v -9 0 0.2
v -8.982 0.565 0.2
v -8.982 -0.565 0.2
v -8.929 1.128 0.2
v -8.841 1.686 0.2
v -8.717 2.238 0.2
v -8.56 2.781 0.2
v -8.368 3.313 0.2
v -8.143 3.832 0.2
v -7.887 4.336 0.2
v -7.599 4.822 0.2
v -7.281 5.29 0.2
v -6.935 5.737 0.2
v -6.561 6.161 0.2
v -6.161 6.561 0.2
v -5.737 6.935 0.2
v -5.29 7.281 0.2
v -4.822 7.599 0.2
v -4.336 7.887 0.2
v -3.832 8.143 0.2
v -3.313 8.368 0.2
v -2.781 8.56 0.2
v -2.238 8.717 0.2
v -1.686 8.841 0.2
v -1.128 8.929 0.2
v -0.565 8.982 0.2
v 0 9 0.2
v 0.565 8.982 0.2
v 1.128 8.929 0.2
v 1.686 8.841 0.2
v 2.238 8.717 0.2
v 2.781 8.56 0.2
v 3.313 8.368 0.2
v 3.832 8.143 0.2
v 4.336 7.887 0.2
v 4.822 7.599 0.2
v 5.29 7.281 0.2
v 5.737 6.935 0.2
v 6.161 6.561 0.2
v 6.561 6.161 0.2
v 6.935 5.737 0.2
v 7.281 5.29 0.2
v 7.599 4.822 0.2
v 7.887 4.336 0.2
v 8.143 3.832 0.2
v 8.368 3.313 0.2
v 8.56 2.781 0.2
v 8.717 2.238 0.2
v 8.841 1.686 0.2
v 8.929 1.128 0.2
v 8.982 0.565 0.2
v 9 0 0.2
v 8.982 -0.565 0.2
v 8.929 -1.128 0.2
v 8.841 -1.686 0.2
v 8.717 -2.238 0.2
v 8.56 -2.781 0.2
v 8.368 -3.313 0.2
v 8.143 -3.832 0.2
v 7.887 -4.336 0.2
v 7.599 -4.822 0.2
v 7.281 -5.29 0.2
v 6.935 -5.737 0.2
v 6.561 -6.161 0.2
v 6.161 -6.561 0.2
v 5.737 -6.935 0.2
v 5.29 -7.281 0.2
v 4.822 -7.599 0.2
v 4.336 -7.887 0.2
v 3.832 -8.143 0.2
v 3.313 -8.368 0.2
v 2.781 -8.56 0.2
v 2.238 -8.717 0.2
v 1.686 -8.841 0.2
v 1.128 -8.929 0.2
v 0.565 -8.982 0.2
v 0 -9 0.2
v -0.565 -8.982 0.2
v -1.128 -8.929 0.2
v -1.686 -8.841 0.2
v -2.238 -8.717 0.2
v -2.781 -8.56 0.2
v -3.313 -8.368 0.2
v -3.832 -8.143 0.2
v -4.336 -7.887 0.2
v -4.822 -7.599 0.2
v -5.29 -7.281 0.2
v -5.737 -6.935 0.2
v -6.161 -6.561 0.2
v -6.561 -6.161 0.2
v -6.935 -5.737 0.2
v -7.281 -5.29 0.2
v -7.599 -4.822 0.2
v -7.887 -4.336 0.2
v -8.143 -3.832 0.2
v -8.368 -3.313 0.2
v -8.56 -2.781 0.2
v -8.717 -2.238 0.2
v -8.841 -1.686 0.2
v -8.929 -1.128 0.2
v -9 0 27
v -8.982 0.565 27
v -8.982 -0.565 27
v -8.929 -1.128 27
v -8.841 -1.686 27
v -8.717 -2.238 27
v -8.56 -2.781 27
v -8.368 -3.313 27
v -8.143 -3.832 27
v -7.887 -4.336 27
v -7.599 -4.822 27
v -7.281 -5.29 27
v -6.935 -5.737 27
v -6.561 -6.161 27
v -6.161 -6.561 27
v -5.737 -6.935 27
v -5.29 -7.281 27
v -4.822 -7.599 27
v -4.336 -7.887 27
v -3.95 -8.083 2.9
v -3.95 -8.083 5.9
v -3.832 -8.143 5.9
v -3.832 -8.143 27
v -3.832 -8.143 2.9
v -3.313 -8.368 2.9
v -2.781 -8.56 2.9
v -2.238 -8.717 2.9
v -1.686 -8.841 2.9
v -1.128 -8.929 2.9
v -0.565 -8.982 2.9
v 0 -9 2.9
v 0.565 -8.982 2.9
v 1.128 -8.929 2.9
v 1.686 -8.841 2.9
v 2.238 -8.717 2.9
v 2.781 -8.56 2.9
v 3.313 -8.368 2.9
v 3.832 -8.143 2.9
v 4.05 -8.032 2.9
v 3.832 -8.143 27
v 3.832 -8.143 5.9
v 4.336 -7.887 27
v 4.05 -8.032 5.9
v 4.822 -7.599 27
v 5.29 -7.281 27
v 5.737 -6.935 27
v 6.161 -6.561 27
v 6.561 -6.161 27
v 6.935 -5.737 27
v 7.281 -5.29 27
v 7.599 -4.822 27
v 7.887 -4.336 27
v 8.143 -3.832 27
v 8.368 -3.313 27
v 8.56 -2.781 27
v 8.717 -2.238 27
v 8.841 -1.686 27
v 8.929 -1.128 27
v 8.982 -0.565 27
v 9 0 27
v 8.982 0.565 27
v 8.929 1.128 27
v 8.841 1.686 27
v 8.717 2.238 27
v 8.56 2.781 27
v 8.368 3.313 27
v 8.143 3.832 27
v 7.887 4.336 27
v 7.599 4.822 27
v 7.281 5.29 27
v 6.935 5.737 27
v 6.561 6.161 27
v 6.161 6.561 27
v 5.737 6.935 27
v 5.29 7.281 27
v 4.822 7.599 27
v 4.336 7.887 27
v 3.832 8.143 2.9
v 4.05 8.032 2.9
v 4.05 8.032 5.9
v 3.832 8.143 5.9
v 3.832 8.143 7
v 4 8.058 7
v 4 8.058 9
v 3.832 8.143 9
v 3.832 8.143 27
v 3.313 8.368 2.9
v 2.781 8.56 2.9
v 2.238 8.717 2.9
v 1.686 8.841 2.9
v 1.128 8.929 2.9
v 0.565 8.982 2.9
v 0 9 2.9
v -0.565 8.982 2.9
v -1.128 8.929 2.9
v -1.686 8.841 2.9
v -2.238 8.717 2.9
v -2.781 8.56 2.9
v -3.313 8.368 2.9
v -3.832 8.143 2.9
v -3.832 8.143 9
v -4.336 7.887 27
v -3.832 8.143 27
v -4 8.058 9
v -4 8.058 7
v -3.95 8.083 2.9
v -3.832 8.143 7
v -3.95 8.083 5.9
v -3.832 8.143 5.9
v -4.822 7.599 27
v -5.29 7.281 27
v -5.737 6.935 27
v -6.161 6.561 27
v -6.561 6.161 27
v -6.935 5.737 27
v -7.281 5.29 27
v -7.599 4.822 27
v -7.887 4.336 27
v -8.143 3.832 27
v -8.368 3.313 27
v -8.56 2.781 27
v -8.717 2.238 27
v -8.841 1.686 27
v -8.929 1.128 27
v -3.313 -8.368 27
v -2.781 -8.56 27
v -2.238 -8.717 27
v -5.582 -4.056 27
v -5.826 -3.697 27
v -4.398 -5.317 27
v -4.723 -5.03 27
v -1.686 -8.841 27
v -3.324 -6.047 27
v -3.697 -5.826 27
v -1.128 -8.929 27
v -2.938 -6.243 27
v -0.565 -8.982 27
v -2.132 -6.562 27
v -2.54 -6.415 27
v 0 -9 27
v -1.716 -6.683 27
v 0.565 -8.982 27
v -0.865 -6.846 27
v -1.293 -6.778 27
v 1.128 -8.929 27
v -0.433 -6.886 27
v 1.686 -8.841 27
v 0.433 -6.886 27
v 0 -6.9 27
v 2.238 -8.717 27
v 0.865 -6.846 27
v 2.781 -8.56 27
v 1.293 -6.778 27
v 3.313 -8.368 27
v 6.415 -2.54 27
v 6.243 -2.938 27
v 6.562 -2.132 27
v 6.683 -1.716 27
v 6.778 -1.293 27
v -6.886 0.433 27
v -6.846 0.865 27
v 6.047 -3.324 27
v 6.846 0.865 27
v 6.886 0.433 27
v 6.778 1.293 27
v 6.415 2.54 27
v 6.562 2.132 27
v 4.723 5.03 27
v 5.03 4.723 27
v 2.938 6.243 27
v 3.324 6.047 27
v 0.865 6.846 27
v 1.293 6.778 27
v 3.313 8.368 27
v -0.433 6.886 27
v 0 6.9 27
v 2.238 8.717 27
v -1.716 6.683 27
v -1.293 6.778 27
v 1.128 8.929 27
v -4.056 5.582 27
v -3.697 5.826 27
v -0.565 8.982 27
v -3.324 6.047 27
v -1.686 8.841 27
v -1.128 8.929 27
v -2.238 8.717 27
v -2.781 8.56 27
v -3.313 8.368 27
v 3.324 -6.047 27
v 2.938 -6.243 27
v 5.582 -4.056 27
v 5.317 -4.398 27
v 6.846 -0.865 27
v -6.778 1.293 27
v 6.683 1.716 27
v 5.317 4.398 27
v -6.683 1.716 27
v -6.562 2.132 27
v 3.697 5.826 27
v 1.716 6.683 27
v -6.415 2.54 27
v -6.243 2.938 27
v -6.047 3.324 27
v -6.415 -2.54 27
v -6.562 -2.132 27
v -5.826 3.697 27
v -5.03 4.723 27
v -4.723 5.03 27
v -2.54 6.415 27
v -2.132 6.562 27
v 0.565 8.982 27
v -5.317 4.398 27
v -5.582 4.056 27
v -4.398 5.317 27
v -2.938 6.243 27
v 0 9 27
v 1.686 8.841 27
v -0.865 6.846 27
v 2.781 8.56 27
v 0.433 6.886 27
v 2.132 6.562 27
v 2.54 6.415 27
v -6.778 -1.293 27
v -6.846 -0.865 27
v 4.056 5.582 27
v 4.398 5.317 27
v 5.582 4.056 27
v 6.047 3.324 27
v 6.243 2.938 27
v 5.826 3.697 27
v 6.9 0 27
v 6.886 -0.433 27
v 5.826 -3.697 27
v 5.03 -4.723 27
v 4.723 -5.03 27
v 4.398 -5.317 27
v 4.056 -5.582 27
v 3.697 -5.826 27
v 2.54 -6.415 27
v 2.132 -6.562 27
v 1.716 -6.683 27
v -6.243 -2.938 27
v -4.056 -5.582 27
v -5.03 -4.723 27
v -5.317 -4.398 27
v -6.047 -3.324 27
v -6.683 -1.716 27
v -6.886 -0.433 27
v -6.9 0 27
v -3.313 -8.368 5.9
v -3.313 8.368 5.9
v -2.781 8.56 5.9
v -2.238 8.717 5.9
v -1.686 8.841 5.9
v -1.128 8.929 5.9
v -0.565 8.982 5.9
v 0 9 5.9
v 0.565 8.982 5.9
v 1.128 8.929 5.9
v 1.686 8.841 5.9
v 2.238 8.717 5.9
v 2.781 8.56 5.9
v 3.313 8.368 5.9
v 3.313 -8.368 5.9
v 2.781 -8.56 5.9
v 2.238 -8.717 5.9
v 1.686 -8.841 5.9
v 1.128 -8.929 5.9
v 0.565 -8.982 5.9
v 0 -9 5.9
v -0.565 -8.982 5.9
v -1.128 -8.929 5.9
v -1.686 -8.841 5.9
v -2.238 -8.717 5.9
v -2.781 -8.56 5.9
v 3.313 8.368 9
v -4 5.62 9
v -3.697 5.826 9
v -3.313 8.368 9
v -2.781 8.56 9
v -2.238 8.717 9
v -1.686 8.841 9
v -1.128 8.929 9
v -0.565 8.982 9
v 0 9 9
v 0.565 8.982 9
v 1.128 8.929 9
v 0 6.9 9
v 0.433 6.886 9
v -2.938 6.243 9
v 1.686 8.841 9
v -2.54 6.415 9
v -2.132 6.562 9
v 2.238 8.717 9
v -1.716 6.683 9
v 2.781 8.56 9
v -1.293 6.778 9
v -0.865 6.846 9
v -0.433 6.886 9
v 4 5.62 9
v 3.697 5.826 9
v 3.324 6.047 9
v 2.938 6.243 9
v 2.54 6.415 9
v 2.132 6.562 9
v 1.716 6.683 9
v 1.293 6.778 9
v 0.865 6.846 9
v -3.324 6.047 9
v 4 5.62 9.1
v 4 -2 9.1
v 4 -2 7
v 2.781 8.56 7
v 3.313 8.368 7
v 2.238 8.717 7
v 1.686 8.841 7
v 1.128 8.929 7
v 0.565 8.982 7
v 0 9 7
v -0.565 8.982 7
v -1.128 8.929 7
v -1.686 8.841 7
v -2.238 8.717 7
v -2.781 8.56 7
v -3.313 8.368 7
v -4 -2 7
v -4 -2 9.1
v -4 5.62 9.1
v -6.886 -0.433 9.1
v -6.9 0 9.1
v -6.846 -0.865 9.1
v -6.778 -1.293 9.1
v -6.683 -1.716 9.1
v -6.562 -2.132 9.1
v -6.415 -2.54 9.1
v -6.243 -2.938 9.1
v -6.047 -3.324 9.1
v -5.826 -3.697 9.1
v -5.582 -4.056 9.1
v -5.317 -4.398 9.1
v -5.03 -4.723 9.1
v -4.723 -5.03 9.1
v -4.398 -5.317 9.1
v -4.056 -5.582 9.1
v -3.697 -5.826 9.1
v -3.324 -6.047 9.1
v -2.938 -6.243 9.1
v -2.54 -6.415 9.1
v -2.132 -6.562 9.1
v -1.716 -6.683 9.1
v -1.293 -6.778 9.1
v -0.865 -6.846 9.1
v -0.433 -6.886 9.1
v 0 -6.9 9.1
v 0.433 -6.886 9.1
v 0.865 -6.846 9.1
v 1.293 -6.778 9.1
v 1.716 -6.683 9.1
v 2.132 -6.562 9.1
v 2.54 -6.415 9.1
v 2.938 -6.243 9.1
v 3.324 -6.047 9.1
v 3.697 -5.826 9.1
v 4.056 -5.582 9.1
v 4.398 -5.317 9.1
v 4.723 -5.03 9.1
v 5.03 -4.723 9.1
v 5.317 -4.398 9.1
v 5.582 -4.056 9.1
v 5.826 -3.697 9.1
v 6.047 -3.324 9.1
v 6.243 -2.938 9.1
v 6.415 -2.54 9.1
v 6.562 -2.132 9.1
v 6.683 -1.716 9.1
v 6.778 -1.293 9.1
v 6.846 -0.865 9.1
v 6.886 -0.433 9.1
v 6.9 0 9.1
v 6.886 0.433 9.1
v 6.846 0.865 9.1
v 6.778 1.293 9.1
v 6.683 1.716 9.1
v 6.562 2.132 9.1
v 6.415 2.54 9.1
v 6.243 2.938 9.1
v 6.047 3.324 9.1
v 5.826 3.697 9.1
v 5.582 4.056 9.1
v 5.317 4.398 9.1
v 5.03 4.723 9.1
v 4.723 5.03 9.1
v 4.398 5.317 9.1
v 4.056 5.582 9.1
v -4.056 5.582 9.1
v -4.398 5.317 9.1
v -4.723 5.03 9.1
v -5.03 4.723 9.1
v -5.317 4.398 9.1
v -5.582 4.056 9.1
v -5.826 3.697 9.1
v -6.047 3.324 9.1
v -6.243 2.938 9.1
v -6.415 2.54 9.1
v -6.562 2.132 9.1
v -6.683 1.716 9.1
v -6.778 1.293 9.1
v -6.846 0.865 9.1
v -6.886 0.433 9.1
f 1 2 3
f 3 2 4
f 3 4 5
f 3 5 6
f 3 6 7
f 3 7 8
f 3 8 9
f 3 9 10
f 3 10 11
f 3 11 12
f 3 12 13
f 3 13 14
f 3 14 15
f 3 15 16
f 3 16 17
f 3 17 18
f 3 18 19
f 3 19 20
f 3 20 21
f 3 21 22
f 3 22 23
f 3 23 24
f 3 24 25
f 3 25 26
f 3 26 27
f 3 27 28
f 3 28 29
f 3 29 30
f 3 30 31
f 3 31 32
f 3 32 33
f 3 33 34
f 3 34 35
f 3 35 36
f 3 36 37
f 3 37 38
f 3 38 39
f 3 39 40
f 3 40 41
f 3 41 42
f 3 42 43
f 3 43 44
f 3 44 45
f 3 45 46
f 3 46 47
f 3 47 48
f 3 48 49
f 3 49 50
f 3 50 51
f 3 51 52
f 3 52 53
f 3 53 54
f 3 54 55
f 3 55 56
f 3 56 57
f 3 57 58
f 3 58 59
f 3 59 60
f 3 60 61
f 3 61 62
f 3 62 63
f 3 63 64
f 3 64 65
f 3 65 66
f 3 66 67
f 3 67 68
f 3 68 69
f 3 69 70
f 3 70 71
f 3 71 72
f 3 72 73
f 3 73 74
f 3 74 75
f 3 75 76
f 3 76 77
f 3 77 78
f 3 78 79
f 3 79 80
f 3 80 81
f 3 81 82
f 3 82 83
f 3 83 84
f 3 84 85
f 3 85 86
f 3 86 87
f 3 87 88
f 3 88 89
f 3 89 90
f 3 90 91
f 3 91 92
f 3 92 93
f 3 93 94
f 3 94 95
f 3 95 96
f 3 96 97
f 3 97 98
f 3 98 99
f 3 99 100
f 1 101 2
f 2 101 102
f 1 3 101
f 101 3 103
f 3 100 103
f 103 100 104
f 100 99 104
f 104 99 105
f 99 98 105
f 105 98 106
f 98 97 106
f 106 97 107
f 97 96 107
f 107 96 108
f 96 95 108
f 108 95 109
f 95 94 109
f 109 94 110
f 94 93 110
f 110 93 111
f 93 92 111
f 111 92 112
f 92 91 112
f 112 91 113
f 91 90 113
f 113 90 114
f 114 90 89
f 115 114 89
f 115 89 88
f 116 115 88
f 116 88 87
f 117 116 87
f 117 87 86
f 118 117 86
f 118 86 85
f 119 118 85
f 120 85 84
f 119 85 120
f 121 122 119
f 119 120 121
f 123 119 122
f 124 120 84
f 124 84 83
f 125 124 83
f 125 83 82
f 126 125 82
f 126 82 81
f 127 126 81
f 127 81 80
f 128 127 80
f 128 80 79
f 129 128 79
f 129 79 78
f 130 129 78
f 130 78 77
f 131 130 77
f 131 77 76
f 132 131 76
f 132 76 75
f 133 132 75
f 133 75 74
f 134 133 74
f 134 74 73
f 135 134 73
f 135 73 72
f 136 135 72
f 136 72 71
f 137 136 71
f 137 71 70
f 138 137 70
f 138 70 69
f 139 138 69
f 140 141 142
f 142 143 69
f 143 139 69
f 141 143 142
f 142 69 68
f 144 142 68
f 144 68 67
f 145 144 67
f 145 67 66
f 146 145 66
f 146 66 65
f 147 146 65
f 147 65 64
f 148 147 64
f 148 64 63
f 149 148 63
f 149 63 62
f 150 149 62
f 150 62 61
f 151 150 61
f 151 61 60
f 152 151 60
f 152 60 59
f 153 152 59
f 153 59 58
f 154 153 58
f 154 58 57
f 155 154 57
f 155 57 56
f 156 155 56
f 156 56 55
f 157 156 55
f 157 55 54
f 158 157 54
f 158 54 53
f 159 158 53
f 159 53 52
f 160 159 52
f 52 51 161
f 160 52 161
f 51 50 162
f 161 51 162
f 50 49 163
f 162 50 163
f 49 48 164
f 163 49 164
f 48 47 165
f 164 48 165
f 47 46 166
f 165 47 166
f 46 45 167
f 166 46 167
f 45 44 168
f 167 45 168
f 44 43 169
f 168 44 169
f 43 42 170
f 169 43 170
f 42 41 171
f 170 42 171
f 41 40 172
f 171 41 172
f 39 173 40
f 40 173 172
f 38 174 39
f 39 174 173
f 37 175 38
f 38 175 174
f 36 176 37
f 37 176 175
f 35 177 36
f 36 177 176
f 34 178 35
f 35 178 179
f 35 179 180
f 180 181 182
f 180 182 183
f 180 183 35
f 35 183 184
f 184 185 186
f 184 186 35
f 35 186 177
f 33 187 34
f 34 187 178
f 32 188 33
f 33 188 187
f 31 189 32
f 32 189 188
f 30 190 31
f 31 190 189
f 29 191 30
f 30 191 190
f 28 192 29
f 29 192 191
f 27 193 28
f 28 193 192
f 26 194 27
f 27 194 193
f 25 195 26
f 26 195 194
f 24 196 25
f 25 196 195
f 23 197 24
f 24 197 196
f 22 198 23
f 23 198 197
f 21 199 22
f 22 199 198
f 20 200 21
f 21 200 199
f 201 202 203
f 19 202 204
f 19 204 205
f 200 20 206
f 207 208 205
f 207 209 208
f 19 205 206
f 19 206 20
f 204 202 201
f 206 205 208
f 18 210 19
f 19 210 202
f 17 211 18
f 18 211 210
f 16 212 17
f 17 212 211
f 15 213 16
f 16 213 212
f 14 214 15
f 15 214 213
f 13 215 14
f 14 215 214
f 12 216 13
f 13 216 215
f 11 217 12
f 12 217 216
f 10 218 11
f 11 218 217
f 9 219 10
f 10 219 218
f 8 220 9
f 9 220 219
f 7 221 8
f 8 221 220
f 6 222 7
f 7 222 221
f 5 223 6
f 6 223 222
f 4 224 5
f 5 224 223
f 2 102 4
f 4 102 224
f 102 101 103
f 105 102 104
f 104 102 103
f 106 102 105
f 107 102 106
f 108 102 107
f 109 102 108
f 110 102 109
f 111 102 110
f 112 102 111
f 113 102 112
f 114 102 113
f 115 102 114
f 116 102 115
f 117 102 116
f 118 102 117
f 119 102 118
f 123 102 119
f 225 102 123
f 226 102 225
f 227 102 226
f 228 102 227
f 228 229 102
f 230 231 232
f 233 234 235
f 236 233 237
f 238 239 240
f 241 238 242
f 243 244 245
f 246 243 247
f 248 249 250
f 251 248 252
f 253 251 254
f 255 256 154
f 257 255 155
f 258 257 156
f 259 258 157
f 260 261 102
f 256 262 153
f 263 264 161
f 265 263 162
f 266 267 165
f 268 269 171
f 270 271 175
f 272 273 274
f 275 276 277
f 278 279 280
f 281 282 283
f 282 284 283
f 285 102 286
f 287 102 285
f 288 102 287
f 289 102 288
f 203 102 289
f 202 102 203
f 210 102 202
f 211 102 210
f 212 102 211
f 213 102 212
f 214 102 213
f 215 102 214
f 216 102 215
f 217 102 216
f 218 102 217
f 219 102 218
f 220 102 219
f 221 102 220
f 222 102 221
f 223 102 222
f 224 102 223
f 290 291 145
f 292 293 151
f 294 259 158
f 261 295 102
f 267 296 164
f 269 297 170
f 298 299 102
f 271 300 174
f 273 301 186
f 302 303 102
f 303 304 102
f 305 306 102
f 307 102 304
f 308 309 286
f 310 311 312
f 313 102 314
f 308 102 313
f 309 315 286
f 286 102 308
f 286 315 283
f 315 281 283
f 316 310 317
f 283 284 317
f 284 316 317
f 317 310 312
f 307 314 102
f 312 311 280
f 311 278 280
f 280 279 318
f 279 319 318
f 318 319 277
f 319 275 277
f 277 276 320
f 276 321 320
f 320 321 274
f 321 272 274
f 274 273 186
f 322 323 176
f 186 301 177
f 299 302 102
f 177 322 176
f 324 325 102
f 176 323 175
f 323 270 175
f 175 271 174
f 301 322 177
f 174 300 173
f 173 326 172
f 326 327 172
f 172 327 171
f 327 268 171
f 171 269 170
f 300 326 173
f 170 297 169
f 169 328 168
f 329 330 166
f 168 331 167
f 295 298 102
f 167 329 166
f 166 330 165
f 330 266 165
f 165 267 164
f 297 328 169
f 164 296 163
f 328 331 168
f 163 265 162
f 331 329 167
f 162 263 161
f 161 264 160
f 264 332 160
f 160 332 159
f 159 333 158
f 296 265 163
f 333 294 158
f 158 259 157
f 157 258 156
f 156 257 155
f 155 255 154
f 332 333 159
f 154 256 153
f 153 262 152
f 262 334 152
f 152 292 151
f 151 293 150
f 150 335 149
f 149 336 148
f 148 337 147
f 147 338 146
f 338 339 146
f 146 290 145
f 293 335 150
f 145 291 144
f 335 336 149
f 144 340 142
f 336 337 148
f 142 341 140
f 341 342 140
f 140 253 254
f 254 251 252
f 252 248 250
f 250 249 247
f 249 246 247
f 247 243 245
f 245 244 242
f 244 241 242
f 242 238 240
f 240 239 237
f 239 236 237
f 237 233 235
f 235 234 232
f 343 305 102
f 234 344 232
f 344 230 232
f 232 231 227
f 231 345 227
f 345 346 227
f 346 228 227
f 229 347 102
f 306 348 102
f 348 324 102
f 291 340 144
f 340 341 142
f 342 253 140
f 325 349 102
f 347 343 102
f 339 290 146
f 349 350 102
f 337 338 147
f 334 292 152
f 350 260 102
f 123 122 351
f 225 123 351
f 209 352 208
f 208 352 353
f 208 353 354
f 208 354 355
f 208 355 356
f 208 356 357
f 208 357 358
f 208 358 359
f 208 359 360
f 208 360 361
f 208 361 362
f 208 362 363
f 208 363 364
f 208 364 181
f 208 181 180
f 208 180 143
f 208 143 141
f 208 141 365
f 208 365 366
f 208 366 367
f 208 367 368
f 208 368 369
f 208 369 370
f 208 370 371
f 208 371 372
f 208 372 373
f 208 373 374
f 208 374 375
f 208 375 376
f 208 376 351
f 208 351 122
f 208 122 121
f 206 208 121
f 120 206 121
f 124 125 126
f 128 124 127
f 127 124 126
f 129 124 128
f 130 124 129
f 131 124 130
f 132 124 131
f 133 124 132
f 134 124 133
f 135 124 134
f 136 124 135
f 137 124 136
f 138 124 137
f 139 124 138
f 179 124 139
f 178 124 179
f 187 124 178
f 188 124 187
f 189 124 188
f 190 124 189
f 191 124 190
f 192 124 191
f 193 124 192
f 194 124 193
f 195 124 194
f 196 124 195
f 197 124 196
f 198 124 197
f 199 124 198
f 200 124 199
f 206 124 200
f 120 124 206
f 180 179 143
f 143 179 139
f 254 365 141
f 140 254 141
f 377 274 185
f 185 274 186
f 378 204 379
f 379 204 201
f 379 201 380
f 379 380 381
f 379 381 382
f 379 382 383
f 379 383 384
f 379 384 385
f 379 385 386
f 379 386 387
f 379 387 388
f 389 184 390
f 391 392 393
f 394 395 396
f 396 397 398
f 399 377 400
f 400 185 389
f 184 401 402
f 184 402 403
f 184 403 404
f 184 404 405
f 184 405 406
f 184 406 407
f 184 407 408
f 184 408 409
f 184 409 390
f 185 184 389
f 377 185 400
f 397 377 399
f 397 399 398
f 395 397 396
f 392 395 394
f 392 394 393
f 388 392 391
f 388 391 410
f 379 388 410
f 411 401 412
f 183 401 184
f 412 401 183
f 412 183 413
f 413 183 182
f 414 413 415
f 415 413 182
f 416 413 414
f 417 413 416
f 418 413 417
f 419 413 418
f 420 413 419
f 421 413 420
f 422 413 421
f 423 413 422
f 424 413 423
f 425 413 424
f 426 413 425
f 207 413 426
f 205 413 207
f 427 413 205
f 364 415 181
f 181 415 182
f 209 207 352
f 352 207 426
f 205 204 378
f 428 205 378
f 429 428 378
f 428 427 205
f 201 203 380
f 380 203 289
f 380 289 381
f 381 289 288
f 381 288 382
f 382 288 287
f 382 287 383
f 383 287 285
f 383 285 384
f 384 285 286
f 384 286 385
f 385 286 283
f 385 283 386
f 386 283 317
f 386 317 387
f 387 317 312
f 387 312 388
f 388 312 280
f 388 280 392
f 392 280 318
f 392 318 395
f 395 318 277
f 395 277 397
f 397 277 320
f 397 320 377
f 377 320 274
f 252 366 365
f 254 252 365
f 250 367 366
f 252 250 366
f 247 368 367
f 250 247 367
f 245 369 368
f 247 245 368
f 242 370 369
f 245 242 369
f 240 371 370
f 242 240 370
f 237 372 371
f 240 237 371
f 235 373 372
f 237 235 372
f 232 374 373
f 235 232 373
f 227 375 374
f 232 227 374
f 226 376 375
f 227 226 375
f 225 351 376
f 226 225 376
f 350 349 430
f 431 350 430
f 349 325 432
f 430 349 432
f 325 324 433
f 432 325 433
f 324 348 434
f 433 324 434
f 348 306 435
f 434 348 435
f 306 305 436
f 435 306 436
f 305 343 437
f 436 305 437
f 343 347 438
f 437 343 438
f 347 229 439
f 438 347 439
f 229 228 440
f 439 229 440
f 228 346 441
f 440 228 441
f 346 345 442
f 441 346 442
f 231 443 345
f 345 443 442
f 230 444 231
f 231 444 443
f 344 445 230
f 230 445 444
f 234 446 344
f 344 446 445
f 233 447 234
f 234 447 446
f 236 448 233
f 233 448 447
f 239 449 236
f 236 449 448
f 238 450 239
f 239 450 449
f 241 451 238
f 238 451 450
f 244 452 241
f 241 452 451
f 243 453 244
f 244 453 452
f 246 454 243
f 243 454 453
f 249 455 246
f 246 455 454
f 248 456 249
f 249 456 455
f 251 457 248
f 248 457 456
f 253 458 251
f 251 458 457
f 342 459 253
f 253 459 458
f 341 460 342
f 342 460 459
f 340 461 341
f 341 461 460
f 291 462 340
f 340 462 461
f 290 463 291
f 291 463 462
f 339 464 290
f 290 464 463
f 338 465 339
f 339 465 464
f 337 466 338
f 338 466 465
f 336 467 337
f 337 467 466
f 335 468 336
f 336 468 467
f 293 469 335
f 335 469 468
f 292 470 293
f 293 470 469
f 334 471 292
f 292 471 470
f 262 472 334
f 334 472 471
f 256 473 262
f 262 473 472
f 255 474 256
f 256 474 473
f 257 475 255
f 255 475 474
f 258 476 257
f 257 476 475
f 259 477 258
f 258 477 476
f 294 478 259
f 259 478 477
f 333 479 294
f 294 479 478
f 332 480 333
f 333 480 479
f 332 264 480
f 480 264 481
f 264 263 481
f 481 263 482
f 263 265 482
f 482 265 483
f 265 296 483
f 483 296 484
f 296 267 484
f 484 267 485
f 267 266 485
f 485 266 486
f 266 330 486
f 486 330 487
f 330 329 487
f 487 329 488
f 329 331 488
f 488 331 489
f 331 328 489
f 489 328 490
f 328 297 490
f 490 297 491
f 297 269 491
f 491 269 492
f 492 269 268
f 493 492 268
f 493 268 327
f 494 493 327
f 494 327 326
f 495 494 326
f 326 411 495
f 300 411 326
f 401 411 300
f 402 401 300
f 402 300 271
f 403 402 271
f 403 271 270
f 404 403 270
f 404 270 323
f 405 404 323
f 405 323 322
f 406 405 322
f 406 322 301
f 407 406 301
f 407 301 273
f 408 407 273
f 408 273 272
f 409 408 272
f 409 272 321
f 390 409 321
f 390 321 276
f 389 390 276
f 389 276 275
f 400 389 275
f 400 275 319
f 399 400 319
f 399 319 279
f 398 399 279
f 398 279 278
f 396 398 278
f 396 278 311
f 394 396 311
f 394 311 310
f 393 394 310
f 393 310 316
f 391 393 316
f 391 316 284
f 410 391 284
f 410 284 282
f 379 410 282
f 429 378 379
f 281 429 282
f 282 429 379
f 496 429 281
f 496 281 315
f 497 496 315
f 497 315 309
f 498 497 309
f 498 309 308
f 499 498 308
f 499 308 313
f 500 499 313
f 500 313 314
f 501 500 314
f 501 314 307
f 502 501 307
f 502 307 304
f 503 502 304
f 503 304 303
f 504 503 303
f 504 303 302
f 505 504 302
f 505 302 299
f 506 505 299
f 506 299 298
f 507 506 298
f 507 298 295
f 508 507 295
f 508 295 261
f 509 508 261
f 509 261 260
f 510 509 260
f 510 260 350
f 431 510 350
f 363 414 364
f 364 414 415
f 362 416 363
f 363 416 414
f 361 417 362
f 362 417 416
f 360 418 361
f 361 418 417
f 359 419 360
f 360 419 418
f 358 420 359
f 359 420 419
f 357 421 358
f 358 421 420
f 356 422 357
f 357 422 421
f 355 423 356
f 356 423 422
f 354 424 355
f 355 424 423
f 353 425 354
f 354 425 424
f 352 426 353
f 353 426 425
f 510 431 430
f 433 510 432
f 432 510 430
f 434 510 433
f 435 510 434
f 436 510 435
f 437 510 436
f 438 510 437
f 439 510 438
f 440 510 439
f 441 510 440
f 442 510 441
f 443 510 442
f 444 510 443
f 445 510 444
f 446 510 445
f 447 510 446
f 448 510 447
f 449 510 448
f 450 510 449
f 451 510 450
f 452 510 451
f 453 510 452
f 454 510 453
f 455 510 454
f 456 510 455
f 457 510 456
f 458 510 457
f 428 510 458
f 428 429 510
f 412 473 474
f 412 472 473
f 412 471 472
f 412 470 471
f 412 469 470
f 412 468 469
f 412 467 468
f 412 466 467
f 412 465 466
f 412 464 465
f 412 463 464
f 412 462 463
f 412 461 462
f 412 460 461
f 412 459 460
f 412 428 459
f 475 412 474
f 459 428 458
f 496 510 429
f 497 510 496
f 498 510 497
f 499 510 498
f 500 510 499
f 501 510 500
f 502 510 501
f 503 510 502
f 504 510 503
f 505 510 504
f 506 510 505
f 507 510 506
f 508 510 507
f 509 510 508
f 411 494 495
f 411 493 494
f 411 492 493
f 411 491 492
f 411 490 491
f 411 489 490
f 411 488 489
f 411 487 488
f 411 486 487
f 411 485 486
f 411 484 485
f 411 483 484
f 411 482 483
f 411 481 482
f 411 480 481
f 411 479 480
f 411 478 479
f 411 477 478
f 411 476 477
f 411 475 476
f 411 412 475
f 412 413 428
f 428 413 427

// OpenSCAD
motor_r = 7;
motor_h = 20;
wall = 2;
diff = 0.1;
plank = 3;
hight=wall*3+plank;
plank_with = 8-diff;
up = 9;

union() {

	difference() {
		translate ([0,0,up]) 
		cylinder(h=motor_h-2, r=motor_r+wall, $fn=100);
		#translate ([0,0,-0.1+up]) 
		cylinder(h=motor_h+5, r=motor_r-diff, $fn=100);

	}
	difference() {
		translate ([0,0,-hight+diff*2+up])
		cylinder(h=hight-diff, r=motor_r+wall, $fn=100);
		#translate ([-plank_with/2,-15,-6.1+up]) cube([8,30,plank]);
		#translate ([-4,-2,-2+up]) cube([8,30,wall*2], $fn=100);
	}
}
